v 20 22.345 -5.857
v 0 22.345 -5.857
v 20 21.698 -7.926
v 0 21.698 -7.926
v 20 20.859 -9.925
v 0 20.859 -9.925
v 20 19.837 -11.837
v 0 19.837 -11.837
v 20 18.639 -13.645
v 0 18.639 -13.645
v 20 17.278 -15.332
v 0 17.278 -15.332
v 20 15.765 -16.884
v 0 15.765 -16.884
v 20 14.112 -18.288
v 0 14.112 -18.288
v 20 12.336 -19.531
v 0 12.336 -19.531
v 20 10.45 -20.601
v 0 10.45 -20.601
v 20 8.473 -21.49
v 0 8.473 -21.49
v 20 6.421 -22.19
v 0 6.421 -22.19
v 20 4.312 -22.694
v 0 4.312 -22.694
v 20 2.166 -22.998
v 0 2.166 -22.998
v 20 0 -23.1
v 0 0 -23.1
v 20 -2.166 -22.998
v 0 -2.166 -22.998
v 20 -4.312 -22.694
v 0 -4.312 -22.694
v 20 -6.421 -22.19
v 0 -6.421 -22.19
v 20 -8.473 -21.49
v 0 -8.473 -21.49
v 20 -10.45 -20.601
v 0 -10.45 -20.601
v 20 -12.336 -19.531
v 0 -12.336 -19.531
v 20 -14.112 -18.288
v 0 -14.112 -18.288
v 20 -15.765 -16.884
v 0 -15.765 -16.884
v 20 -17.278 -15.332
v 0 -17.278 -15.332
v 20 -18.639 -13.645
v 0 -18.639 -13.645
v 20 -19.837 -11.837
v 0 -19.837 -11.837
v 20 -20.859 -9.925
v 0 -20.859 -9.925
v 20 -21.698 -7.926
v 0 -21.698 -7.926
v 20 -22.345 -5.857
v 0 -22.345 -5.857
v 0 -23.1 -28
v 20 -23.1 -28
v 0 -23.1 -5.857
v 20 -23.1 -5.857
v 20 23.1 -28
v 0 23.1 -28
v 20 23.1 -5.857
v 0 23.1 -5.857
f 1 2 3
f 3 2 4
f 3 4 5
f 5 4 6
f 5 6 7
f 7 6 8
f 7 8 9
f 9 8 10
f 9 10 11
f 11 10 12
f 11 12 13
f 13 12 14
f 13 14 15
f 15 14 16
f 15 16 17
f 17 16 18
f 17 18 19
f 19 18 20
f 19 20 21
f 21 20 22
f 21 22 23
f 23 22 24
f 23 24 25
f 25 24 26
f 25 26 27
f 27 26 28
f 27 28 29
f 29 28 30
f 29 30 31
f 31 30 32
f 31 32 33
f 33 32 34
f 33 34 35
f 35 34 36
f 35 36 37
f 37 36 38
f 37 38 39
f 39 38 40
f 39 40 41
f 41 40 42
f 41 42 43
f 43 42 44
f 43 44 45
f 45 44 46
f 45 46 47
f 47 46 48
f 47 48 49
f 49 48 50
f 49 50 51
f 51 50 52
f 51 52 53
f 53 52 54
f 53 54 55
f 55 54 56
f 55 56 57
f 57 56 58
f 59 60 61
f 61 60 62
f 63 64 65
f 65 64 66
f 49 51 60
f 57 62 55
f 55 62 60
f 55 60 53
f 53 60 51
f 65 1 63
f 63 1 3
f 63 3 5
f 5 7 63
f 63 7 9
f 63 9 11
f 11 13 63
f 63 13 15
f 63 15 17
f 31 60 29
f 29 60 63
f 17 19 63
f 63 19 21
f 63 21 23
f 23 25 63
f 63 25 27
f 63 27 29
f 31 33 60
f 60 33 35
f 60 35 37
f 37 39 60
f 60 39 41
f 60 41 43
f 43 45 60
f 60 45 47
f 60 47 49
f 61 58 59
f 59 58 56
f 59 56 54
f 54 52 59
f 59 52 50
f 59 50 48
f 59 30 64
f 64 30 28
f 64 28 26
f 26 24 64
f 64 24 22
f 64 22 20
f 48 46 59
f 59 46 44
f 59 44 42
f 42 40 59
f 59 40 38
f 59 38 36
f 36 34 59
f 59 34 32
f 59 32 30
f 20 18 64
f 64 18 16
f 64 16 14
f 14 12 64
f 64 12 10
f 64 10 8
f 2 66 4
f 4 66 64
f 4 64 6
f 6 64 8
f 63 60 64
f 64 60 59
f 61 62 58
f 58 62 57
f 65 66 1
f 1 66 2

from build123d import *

# Parameters (mm, degrees)
SALIENTE_EXTRUIR2_DEPTH = 20
CROQUIS5_OUTSIDE_W      = 41.522
CROQUIS5_OUTSIDE_H      = 59.722
CROQUIS5_OUTSIDE_W_2    = 22.143022039
CROQUIS5_OUTSIDE_H_2    = 46.2
CORTAR_EXTRUIR1_DEPTH   = 42.444058682


with BuildPart() as part:
    # Croquis4 → Saliente-Extruir2 (new body)
    with BuildSketch(Plane(origin=(0, 0, 0), x_dir=(0, 0, -1), z_dir=(1, 0, 0))):
        with BuildLine():
            Line((0, 23.1), (28, 23.1))
            Line((28, 23.1), (28, -23.1))
            Line((28, -23.1), (0, -23.1))
            ThreePointArc((0, -23.1), (23.1, 0), (0, 23.1))
        make_face()
    extrude(amount=SALIENTE_EXTRUIR2_DEPTH)

    # Croquis5 outside → Cortar-Extruir1 (cut, through all)
    with BuildSketch(Plane(origin=(20, 0, 0), x_dir=(0, 0, -1), z_dir=(1, 0, 0))):
        with Locations((14, 0)):
            Rectangle(CROQUIS5_OUTSIDE_W, CROQUIS5_OUTSIDE_H)
        with Locations((16.92848898, 0)):
            Rectangle(CROQUIS5_OUTSIDE_W_2, CROQUIS5_OUTSIDE_H_2, mode=Mode.SUBTRACT)
    extrude(amount=-CORTAR_EXTRUIR1_DEPTH, mode=Mode.SUBTRACT)


solid = part.part
